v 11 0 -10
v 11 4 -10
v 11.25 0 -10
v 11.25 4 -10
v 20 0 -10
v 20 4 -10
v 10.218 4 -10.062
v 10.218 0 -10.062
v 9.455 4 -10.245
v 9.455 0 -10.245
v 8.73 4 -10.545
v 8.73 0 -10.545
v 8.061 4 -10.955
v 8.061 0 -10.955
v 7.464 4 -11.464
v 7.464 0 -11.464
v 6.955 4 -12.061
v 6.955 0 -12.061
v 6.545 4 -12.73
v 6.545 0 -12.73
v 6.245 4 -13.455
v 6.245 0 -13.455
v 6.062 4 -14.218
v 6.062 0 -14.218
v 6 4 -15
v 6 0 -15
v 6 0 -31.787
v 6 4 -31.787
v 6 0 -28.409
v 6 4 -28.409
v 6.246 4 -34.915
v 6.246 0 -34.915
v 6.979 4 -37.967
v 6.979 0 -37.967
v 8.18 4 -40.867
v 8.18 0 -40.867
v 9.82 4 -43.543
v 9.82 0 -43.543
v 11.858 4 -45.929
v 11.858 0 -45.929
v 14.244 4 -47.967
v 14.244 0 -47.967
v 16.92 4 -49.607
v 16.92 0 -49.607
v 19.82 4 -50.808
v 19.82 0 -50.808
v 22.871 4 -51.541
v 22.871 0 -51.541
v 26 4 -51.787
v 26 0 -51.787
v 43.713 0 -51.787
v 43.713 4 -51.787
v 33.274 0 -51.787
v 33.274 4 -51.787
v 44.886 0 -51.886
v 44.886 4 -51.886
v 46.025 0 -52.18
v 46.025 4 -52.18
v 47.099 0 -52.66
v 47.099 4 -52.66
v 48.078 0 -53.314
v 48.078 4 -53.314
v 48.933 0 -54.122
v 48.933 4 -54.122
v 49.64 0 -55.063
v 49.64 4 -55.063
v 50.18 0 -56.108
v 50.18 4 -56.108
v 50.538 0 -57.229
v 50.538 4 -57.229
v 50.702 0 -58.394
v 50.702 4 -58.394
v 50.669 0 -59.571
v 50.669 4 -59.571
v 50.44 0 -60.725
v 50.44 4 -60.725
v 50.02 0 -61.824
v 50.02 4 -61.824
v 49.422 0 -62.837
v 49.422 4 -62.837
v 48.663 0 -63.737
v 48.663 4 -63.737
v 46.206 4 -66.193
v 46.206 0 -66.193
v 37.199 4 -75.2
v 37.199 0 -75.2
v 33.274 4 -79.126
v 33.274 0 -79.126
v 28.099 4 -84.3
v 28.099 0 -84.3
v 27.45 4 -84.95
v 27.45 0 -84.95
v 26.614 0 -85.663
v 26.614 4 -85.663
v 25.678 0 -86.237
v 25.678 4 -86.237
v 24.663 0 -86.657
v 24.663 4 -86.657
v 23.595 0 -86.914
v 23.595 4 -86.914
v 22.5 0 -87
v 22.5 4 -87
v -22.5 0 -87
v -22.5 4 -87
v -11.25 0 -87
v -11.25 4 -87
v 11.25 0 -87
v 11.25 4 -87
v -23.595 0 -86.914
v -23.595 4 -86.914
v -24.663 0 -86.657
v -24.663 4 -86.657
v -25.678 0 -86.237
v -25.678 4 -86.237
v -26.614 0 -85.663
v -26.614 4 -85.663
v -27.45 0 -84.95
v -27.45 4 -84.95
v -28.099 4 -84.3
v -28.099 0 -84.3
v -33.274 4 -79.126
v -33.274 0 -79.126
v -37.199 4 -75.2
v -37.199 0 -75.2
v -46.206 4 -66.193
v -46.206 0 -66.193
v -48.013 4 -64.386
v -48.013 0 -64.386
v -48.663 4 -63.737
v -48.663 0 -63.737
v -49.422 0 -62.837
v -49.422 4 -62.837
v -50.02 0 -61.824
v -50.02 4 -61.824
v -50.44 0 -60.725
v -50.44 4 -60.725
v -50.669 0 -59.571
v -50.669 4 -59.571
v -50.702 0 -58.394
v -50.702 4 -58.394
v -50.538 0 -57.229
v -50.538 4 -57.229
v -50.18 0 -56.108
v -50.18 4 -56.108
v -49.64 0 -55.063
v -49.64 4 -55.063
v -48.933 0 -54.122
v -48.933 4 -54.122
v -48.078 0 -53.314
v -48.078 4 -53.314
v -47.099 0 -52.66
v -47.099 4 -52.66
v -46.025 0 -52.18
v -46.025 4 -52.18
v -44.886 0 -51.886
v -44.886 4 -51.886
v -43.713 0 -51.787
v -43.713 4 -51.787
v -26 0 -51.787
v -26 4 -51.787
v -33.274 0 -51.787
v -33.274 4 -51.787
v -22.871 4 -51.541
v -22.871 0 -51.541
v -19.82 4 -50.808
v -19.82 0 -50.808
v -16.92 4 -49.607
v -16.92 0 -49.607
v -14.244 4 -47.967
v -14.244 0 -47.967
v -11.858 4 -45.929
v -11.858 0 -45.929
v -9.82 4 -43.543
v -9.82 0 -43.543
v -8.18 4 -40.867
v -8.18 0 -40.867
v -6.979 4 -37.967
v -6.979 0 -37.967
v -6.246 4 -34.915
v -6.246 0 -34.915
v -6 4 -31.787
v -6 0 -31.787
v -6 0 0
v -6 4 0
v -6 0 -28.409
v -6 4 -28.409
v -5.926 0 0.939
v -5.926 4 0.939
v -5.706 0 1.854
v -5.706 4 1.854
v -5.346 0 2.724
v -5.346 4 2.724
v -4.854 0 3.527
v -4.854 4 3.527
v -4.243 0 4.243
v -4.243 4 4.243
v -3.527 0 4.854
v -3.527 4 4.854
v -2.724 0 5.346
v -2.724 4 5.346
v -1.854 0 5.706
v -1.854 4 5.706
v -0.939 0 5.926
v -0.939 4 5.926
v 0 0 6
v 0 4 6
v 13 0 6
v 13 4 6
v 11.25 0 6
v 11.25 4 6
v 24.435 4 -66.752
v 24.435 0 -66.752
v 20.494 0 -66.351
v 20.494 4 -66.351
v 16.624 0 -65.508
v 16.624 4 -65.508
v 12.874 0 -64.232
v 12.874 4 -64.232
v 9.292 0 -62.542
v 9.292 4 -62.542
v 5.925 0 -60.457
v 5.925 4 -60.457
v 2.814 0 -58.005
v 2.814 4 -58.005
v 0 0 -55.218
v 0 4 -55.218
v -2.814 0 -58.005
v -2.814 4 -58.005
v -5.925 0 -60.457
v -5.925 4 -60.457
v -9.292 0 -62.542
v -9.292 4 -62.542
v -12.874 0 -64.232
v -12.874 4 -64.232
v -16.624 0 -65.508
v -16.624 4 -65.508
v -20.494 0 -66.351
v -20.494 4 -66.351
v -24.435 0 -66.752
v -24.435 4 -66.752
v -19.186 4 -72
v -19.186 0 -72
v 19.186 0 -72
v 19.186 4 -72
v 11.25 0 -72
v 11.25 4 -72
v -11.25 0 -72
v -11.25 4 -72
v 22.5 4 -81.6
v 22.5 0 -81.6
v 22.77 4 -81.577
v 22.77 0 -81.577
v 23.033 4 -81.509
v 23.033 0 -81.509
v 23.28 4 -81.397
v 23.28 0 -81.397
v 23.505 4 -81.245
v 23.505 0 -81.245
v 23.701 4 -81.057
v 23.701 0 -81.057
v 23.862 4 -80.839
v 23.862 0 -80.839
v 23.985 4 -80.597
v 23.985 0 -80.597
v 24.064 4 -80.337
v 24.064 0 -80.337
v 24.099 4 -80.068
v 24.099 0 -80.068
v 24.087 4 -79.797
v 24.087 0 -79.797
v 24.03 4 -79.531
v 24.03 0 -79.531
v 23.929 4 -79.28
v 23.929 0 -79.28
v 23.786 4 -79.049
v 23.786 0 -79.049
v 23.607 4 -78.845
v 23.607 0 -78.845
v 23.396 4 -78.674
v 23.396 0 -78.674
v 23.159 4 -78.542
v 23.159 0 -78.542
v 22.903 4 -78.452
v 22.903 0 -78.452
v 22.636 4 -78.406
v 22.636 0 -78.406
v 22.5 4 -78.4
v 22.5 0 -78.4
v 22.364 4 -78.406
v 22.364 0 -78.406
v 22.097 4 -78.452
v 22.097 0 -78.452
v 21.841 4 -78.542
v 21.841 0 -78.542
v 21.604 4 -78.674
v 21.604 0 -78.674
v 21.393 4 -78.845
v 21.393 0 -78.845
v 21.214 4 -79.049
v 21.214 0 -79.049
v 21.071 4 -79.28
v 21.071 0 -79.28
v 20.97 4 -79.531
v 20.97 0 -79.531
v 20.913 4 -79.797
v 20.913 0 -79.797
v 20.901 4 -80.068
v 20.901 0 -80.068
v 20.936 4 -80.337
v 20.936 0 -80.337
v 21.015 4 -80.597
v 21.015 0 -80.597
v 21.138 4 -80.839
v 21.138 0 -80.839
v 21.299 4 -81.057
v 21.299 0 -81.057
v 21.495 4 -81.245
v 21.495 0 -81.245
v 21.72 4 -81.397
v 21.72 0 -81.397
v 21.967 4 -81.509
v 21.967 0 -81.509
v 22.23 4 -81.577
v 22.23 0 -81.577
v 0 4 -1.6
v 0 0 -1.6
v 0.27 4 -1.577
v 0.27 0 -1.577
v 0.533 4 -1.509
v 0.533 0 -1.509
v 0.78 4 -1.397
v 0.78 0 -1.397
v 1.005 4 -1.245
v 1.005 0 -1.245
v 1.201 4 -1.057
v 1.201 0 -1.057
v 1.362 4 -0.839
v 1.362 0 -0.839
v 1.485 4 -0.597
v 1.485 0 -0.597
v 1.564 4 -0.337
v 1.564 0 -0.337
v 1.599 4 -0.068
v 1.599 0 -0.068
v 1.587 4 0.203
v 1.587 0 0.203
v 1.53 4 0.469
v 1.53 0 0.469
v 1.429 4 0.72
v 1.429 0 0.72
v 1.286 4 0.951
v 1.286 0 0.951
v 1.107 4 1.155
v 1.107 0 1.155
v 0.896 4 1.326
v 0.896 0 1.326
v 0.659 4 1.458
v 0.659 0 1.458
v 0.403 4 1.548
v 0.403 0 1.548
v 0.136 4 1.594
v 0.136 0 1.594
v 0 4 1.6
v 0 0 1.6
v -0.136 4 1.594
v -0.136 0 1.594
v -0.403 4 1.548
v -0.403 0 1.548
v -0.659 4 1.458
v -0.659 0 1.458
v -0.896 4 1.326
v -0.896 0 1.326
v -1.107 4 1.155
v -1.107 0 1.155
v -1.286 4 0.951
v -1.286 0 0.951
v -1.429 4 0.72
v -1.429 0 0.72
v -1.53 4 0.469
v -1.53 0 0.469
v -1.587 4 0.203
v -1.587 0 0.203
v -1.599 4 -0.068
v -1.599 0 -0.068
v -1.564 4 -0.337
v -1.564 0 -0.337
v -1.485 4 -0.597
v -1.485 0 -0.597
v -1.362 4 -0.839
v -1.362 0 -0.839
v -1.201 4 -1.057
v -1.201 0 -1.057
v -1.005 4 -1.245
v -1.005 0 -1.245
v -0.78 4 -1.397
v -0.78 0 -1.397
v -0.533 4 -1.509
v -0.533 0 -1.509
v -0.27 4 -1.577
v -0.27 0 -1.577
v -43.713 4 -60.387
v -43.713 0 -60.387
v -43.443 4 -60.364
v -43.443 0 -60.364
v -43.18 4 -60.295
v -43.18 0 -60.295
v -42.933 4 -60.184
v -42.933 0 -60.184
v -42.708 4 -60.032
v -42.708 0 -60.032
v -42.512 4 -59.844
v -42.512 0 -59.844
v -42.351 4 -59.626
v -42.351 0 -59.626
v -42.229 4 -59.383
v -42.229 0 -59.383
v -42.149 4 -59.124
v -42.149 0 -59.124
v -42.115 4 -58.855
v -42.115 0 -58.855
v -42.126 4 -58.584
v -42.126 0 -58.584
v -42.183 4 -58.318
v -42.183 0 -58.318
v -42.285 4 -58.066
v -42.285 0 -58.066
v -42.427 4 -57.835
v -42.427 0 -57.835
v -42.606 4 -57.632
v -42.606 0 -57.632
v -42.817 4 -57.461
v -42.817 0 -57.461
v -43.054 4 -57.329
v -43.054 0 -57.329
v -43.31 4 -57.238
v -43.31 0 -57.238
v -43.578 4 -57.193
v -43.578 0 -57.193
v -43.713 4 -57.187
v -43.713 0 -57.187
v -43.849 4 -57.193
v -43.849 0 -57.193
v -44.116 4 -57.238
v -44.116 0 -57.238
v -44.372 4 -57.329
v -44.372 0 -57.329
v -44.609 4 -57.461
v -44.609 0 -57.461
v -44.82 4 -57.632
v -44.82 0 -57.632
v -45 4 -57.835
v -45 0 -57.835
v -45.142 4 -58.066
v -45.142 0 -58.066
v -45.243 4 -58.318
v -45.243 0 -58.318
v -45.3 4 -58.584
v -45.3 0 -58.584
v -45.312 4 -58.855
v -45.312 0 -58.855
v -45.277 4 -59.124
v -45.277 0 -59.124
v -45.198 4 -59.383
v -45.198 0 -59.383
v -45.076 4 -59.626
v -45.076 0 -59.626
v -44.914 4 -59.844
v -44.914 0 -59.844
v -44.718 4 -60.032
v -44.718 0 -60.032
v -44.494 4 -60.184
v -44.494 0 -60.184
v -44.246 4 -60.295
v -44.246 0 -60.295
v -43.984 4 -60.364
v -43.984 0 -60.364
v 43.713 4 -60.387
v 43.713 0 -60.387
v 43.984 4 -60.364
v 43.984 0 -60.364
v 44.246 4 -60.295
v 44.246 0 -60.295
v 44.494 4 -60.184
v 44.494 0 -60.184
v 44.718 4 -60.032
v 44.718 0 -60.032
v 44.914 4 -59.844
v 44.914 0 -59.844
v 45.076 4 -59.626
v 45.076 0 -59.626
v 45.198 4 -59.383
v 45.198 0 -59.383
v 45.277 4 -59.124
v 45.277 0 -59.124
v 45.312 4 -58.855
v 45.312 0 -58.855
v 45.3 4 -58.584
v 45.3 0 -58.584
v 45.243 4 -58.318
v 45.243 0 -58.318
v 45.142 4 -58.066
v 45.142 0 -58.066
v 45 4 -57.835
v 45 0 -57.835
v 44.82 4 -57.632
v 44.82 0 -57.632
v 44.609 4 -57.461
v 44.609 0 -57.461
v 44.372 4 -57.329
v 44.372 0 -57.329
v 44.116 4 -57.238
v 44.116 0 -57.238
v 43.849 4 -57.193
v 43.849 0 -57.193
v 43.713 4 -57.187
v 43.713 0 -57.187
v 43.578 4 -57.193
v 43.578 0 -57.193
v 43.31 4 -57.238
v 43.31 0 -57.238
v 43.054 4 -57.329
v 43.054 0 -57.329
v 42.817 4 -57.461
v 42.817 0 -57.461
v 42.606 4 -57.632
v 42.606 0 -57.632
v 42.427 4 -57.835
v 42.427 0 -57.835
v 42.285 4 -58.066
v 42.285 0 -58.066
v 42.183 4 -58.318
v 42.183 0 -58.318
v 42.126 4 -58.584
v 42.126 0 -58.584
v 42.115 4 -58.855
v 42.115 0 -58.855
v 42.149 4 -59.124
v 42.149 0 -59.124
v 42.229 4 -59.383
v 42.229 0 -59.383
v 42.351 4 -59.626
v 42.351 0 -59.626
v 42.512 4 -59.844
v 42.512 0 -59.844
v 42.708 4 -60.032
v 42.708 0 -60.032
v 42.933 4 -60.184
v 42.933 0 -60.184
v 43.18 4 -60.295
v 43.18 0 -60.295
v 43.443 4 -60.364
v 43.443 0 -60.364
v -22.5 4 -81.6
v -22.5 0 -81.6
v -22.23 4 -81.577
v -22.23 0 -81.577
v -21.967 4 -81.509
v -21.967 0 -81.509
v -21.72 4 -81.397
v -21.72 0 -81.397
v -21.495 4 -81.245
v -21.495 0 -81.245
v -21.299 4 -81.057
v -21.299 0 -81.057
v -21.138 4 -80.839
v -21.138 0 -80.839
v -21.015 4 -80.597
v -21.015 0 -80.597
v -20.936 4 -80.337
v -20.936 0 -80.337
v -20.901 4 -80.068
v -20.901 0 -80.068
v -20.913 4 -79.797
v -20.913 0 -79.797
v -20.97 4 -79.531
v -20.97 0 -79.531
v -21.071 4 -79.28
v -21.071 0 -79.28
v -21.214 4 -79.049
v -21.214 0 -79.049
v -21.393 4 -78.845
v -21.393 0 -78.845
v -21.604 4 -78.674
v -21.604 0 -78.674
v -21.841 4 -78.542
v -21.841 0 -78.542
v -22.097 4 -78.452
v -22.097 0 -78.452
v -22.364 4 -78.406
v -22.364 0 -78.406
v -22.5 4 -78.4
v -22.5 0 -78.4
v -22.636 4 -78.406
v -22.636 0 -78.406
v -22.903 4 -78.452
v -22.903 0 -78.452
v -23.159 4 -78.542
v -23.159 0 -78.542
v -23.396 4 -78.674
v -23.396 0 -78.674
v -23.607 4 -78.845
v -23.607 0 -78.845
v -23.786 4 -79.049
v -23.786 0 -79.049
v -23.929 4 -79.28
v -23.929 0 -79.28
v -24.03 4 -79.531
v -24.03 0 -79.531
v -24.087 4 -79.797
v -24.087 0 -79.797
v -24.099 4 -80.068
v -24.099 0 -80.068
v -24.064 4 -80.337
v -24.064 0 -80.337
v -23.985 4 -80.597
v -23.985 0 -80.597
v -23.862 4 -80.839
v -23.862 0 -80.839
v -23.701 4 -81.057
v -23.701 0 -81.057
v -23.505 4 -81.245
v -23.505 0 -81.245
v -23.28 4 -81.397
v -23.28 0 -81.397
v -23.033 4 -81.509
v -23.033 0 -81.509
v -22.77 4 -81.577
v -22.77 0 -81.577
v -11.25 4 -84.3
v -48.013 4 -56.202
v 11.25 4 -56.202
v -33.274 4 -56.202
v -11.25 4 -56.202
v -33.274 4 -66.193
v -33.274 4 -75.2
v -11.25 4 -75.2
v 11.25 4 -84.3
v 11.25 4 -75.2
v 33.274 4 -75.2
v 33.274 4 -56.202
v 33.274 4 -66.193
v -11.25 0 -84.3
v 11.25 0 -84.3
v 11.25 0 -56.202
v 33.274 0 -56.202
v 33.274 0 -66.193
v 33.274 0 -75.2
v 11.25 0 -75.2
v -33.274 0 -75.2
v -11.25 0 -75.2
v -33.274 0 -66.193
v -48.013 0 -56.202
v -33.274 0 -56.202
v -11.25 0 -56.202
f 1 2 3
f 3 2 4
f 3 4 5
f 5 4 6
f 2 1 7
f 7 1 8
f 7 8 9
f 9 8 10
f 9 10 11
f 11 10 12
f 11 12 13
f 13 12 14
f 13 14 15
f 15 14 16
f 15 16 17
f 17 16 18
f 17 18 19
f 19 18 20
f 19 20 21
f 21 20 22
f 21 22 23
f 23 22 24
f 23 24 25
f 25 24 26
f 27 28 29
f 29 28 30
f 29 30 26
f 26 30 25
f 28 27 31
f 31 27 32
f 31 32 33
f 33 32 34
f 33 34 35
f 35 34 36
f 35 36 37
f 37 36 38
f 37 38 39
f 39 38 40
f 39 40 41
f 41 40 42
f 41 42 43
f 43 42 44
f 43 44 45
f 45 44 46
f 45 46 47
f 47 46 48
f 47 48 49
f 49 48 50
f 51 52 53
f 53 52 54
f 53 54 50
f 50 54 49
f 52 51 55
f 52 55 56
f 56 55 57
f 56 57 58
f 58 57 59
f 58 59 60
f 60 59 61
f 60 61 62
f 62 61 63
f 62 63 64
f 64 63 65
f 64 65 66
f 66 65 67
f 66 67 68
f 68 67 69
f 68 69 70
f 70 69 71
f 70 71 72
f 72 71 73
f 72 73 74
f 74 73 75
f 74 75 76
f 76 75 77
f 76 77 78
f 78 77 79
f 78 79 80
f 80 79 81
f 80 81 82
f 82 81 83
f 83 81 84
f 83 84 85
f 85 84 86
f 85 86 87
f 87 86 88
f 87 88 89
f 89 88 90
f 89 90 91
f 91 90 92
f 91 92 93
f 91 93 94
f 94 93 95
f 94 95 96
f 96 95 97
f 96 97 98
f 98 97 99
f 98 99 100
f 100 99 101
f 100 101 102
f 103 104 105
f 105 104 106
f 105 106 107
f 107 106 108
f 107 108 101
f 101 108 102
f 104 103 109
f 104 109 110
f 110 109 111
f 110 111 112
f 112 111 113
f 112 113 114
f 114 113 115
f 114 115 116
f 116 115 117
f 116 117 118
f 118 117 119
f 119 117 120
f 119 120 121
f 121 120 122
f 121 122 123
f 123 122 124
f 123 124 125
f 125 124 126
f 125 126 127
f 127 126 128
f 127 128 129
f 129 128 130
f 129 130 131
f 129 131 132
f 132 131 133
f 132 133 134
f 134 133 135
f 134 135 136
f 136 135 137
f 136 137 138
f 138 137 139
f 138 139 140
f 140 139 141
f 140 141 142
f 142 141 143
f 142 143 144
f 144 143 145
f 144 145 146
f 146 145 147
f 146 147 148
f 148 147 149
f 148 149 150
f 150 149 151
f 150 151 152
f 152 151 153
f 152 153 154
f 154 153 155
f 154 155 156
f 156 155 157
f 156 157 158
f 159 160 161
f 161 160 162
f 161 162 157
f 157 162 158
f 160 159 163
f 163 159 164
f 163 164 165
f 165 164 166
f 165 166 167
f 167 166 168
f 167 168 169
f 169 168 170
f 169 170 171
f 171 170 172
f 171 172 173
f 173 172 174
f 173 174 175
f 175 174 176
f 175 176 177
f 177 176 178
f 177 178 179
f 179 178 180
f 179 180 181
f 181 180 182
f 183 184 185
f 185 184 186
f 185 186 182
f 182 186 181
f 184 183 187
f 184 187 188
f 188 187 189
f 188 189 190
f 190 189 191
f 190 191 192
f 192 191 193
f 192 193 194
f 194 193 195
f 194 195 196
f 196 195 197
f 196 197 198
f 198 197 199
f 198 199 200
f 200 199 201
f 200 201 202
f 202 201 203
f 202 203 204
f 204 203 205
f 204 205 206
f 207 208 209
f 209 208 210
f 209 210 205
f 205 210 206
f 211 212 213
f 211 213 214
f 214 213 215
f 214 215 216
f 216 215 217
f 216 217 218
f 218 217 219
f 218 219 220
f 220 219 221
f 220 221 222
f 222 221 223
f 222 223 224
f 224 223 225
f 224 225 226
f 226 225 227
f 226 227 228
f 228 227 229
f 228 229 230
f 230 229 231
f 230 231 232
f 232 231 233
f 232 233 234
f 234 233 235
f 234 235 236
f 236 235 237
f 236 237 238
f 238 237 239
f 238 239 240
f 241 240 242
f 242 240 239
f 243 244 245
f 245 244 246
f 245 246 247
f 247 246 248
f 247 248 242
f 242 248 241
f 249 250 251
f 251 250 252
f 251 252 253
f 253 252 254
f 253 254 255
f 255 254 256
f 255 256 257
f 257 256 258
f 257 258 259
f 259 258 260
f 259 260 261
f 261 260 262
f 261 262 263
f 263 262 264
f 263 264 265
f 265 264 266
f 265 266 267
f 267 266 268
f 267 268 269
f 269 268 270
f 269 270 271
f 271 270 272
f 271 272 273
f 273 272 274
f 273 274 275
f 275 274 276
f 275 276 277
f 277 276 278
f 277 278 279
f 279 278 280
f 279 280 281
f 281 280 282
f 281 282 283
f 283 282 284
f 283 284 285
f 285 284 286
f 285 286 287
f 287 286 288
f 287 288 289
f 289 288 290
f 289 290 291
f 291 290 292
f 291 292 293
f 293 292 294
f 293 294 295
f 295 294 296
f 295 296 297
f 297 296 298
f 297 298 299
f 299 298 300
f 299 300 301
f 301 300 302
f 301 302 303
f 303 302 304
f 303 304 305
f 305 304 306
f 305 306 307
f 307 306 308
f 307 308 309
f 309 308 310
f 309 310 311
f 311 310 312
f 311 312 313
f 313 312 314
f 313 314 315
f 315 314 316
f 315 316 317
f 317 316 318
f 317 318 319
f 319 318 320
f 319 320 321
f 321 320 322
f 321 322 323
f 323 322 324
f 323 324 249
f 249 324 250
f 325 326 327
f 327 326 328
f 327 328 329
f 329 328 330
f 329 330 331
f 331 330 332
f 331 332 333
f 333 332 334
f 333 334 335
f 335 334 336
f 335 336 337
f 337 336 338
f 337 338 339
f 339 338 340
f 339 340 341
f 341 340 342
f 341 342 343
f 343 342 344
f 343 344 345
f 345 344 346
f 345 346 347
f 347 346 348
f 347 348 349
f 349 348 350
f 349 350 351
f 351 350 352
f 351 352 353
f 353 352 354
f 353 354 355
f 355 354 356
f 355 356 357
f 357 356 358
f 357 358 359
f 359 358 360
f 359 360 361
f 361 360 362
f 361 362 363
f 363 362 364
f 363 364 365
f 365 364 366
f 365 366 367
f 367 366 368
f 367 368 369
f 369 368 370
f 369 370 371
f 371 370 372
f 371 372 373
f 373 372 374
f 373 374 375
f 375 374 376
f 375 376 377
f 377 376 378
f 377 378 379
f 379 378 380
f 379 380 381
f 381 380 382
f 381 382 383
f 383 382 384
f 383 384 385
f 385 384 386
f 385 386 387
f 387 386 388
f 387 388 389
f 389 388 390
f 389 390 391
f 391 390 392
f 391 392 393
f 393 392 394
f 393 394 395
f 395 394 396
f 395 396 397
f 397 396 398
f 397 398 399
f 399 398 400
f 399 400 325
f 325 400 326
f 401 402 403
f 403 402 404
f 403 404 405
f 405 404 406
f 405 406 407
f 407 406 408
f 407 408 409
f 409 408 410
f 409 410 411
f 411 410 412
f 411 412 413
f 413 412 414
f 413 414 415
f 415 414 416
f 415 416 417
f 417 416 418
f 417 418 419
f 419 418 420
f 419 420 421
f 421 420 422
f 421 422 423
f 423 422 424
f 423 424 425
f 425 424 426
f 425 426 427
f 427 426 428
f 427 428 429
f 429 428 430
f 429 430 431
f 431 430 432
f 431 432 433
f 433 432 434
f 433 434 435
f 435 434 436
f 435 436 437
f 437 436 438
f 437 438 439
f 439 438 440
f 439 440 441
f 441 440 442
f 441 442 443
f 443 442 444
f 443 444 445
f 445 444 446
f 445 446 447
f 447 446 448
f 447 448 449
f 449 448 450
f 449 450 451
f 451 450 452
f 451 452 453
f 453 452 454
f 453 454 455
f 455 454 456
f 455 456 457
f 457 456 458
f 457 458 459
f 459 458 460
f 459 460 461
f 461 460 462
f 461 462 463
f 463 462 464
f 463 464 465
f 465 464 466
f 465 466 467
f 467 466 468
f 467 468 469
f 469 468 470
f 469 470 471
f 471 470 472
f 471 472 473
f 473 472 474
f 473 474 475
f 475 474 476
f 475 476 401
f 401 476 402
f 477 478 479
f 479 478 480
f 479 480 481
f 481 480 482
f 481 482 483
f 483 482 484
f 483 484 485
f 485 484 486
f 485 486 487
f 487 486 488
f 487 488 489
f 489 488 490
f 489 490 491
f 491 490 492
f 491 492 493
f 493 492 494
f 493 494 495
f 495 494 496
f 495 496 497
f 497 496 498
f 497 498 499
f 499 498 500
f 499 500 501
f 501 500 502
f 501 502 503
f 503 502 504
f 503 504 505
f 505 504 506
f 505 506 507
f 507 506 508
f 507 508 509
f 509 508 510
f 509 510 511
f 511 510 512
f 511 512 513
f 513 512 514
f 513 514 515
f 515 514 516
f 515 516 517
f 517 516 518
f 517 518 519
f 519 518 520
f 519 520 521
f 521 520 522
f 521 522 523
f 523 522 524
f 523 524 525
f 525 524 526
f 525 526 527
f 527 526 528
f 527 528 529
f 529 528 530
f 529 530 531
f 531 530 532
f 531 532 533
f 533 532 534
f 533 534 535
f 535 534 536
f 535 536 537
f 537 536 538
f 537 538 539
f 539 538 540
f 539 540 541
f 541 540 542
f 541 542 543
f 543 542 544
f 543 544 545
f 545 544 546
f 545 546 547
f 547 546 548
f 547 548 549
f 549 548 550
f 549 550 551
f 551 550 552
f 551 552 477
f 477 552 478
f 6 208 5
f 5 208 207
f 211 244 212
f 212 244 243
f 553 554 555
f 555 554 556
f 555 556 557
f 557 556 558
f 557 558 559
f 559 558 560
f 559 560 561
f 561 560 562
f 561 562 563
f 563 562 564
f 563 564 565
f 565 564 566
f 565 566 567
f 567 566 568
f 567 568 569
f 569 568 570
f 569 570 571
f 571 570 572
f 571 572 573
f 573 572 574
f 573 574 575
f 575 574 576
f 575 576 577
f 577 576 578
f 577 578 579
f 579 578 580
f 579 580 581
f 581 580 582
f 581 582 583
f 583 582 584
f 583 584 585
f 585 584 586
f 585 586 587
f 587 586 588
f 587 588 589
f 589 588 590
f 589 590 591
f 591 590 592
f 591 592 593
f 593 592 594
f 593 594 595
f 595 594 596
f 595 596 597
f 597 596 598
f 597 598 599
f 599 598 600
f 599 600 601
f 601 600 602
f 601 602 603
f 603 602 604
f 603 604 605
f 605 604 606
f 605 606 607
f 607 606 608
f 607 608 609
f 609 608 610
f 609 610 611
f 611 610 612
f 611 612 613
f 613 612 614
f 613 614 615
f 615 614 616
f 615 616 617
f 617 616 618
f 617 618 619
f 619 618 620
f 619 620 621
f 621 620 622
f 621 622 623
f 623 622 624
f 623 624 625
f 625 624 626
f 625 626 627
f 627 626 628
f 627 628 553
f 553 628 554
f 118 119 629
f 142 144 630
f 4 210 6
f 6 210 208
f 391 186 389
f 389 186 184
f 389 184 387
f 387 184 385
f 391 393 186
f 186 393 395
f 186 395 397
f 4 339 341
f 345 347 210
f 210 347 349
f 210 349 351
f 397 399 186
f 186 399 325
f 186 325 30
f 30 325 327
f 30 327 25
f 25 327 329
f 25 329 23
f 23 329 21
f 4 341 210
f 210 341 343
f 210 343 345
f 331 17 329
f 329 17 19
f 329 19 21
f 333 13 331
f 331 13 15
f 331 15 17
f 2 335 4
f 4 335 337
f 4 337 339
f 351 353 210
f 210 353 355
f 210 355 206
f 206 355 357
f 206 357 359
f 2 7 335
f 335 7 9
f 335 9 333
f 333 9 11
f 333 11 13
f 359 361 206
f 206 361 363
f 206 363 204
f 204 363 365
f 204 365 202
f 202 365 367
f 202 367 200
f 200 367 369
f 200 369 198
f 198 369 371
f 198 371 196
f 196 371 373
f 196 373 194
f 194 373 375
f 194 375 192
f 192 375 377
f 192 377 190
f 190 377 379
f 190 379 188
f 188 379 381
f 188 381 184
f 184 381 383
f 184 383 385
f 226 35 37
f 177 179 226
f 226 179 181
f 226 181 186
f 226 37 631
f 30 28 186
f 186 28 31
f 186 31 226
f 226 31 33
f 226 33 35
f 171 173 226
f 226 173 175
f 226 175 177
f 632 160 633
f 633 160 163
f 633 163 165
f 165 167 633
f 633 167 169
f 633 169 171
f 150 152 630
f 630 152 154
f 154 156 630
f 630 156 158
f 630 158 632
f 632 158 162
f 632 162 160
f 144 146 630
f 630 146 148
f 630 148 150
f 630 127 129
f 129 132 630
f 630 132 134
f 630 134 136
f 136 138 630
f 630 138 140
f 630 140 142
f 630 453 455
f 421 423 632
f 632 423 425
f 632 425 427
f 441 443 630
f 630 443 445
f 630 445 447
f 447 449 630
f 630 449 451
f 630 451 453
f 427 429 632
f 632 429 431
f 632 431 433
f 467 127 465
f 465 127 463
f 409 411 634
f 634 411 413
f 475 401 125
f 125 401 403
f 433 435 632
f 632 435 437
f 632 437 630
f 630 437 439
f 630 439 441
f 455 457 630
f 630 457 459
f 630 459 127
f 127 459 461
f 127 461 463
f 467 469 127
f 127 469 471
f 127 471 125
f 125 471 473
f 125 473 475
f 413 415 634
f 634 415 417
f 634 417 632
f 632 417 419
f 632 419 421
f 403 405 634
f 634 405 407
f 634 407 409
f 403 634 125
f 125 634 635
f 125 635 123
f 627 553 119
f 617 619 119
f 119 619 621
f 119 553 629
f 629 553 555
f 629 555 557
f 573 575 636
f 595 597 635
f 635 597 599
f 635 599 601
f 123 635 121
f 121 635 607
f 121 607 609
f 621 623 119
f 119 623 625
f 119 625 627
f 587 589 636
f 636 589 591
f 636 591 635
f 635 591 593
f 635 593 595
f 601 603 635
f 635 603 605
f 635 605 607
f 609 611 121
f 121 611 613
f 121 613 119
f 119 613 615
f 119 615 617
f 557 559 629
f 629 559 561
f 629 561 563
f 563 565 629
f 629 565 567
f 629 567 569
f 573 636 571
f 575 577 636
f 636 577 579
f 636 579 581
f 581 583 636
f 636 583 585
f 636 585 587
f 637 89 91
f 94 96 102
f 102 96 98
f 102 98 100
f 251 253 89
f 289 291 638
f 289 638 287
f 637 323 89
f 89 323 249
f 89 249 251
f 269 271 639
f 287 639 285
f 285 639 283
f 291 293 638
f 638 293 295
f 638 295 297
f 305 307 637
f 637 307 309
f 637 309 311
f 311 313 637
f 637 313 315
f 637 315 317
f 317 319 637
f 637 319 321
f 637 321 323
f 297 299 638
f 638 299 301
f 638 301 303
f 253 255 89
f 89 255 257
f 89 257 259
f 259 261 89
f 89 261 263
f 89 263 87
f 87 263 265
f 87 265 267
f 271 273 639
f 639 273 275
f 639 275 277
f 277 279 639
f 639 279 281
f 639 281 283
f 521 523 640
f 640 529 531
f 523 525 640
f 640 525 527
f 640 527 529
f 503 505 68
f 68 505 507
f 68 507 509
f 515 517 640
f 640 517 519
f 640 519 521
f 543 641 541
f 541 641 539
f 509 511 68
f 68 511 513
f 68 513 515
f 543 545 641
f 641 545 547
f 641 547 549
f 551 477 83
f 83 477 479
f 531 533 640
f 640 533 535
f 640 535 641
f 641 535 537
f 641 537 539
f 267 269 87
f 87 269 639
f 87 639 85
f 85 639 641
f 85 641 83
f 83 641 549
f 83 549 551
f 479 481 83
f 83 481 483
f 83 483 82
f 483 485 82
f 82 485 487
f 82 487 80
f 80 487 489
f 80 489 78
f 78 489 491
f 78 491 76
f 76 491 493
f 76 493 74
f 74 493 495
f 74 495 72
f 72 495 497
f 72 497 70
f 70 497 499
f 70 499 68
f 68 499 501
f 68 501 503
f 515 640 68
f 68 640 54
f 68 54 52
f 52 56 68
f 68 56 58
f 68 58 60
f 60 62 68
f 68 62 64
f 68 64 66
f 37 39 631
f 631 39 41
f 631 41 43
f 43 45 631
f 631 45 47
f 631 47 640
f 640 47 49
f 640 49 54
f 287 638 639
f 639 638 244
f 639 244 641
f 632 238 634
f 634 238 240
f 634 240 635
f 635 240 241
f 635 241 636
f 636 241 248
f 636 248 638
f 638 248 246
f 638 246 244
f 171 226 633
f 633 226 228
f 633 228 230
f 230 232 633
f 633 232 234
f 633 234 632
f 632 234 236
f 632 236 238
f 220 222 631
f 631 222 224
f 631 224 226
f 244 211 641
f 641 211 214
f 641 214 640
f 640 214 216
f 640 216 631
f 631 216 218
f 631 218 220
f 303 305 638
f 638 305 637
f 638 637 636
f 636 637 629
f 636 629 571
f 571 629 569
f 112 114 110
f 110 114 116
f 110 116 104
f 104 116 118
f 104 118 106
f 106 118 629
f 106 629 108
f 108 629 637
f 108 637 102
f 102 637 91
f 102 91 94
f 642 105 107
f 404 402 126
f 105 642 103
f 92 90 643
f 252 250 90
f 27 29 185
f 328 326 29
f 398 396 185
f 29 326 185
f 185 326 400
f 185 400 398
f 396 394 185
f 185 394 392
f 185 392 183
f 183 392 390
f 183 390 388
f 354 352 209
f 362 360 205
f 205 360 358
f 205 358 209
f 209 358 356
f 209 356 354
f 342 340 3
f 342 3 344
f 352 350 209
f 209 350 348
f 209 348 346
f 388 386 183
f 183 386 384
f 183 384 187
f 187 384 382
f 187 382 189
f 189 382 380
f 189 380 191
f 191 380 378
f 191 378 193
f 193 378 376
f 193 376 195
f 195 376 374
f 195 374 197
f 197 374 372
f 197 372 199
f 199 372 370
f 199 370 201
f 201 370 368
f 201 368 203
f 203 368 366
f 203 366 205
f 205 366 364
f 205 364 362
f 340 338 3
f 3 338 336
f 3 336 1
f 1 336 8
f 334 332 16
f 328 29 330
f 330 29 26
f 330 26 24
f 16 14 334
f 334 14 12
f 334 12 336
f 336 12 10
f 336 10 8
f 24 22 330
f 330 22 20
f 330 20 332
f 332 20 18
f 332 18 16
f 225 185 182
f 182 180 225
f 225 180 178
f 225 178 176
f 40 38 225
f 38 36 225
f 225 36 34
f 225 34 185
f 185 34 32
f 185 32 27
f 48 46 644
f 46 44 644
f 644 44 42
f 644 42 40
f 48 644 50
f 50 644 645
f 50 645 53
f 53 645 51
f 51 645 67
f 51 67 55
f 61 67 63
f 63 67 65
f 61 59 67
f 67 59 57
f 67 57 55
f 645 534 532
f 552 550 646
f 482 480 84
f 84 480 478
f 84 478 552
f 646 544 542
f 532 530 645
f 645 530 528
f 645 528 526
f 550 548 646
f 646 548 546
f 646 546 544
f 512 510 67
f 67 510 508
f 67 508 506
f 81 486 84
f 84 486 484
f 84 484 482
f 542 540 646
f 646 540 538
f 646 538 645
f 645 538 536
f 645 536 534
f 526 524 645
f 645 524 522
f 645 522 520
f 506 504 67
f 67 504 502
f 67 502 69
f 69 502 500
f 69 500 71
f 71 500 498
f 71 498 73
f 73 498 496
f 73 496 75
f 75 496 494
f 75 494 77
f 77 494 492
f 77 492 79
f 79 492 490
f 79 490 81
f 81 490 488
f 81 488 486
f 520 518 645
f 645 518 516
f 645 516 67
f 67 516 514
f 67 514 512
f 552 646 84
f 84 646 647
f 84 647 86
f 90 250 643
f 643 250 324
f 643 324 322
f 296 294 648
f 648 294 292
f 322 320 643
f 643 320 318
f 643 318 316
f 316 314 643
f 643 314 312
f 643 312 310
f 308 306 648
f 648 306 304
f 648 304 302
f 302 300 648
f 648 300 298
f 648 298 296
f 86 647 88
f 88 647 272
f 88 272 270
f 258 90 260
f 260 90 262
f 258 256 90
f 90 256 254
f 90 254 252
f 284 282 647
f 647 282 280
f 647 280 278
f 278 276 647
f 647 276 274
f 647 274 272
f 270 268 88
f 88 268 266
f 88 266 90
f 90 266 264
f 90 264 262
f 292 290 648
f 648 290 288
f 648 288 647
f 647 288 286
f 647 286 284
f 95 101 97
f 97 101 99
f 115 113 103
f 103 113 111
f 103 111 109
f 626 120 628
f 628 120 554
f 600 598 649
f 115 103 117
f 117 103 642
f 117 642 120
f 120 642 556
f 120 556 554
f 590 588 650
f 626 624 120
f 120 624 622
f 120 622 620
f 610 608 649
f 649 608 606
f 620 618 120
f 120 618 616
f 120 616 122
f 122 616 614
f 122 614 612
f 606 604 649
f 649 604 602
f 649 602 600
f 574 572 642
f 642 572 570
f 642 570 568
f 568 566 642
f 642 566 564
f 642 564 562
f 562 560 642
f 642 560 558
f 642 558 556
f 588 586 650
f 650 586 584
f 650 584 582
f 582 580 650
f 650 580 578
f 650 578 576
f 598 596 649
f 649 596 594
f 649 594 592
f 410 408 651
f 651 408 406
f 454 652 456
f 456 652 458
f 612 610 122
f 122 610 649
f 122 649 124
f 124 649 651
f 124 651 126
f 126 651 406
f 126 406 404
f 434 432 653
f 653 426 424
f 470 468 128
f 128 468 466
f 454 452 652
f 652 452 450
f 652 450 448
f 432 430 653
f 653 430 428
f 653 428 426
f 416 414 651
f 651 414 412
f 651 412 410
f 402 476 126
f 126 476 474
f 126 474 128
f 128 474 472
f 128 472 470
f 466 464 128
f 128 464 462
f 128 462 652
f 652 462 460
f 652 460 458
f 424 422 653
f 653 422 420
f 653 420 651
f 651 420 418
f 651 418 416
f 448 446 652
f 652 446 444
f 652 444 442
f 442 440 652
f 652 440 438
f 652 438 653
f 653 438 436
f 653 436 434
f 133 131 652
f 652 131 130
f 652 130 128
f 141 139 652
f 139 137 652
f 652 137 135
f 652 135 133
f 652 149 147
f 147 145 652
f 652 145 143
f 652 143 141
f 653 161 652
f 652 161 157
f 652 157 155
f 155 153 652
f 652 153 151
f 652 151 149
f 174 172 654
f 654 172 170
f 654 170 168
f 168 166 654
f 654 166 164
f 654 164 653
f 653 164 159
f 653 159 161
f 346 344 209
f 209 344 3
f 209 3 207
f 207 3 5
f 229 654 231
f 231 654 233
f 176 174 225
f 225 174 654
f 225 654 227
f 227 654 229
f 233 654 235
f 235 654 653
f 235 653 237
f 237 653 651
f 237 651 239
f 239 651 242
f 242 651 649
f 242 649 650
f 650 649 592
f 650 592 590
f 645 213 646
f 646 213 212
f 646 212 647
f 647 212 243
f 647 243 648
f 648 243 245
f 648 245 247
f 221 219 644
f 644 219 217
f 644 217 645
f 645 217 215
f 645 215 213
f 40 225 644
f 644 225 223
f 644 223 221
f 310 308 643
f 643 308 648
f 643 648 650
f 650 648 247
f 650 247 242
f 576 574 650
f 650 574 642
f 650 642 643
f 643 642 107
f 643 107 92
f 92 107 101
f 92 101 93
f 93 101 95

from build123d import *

# Parameters (mm, degrees)
SKETCH1_R           = 3
SKETCH1_R_2         = 1.6
BOSS_EXTRUDE1_DEPTH = 4


with BuildPart() as part:
    # Sketch1 → Boss-Extrude1 (new body)
    with BuildSketch(Plane(origin=(0, 0, 0), x_dir=(1, 0, 0), z_dir=(0, 1, 0))):
        with BuildLine():
            Line((11, 10), (20, 10))
            Line((20, 10), (13, -6))
            Line((13, -6), (0, -6))
            ThreePointArc((0, -6), (-4.242640687, -4.242640687), (-6, 0))
            Line((-6, 0), (-6, 31.786796564))
            ThreePointArc((-6, 31.786796564), (-11.857864376, 45.928932188), (-26, 51.786796564))
            Line((-26, 51.786796564), (-43.713203436, 51.786796564))
            ThreePointArc((-43.713203436, 51.786796564), (-50.180360163, 56.108012538), (-48.662950904, 63.736544033))
            Line((-48.662950904, 63.736544033), (-27.449747468, 84.949747468))
            ThreePointArc((-27.449747468, 84.949747468), (-25.178784027, 86.467156728), (-22.5, 87))
            Line((-22.5, 87), (22.5, 87))
            ThreePointArc((22.5, 87), (25.178784027, 86.467156728), (27.449747468, 84.949747468))
            Line((27.449747468, 84.949747468), (48.662950904, 63.736544033))
            ThreePointArc((48.662950904, 63.736544033), (50.180360163, 56.108012538), (43.713203436, 51.786796564))
            Line((43.713203436, 51.786796564), (26, 51.786796564))
            ThreePointArc((26, 51.786796564), (11.857864376, 45.928932188), (6, 31.786796564))
            Line((6, 31.786796564), (6, 15))
            ThreePointArc((6, 15), (7.464466094, 11.464466094), (11, 10))
        make_face()
        with Locations((-22.5, 80)):
            Circle(SKETCH1_R, mode=Mode.SUBTRACT)
        with Locations((22.5, 80)):
            Circle(SKETCH1_R, mode=Mode.SUBTRACT)
        Circle(SKETCH1_R, mode=Mode.SUBTRACT)
        with Locations((-43.713203436, 58.786796564)):
            Circle(SKETCH1_R, mode=Mode.SUBTRACT)
        with Locations((43.713203436, 58.786796564)):
            Circle(SKETCH1_R, mode=Mode.SUBTRACT)
        with BuildLine():
            ThreePointArc((24.434522737, 66.751768764), (11.059335348, 63.437650262), (0, 55.217545592))
            ThreePointArc((0, 55.217545592), (-11.059335348, 63.437650262), (-24.434522737, 66.751768764))
            Line((-24.434522737, 66.751768764), (-19.186291501, 72))
            Line((-19.186291501, 72), (19.186291501, 72))
            Line((19.186291501, 72), (24.434522737, 66.751768764))
        make_face(mode=Mode.SUBTRACT)
        Circle(SKETCH1_R)
        with Locations(Location((0, 0, 0), (0, 0, 270))):
            Circle(SKETCH1_R_2, mode=Mode.SUBTRACT)
        with Locations((43.713203436, 58.786796564)):
            Circle(SKETCH1_R)
        with Locations(Location((43.713203436, 58.786796564, 0), (0, 0, 270))):
            Circle(SKETCH1_R_2, mode=Mode.SUBTRACT)
        with Locations((22.5, 80)):
            Circle(SKETCH1_R)
        with Locations(Location((22.5, 80, 0), (0, 0, 270))):
            Circle(SKETCH1_R_2, mode=Mode.SUBTRACT)
        with Locations((-22.5, 80)):
            Circle(SKETCH1_R)
        with Locations(Location((-22.5, 80, 0), (0, 0, 270))):
            Circle(SKETCH1_R_2, mode=Mode.SUBTRACT)
        with Locations((-43.713203436, 58.786796564)):
            Circle(SKETCH1_R)
        with Locations(Location((-43.713203436, 58.786796564, 0), (0, 0, 270))):
            Circle(SKETCH1_R_2, mode=Mode.SUBTRACT)
    extrude(amount=BOSS_EXTRUDE1_DEPTH)


solid = part.part
